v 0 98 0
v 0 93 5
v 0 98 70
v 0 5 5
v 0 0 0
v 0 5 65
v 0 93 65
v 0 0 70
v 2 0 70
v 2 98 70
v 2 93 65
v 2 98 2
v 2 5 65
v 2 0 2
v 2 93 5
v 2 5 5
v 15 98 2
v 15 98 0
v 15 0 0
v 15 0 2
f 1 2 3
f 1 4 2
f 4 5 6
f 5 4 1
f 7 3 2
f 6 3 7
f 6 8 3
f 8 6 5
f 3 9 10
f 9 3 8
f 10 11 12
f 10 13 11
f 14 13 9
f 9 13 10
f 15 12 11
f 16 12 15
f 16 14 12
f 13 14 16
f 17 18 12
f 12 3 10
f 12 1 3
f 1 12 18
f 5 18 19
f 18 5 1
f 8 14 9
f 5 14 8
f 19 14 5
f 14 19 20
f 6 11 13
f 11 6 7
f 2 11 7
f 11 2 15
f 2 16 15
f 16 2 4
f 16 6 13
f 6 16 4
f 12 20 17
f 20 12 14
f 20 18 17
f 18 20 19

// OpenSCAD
echo(version=version());

$wall_thickness = 2;
$fn = 50;
$bleed = 0.1;

// Variables
depth = 15;
card_space_width = 98;
height = 70;

padding = 5;


cube([depth, card_space_width, $wall_thickness]);
difference() {
  cube([$wall_thickness, card_space_width, height]);
  translate([-$bleed, padding, padding]) {
    cube([$wall_thickness + ($bleed * 2) + 100, card_space_width - (padding * 2), height - (padding * 2)]);
  }
}
